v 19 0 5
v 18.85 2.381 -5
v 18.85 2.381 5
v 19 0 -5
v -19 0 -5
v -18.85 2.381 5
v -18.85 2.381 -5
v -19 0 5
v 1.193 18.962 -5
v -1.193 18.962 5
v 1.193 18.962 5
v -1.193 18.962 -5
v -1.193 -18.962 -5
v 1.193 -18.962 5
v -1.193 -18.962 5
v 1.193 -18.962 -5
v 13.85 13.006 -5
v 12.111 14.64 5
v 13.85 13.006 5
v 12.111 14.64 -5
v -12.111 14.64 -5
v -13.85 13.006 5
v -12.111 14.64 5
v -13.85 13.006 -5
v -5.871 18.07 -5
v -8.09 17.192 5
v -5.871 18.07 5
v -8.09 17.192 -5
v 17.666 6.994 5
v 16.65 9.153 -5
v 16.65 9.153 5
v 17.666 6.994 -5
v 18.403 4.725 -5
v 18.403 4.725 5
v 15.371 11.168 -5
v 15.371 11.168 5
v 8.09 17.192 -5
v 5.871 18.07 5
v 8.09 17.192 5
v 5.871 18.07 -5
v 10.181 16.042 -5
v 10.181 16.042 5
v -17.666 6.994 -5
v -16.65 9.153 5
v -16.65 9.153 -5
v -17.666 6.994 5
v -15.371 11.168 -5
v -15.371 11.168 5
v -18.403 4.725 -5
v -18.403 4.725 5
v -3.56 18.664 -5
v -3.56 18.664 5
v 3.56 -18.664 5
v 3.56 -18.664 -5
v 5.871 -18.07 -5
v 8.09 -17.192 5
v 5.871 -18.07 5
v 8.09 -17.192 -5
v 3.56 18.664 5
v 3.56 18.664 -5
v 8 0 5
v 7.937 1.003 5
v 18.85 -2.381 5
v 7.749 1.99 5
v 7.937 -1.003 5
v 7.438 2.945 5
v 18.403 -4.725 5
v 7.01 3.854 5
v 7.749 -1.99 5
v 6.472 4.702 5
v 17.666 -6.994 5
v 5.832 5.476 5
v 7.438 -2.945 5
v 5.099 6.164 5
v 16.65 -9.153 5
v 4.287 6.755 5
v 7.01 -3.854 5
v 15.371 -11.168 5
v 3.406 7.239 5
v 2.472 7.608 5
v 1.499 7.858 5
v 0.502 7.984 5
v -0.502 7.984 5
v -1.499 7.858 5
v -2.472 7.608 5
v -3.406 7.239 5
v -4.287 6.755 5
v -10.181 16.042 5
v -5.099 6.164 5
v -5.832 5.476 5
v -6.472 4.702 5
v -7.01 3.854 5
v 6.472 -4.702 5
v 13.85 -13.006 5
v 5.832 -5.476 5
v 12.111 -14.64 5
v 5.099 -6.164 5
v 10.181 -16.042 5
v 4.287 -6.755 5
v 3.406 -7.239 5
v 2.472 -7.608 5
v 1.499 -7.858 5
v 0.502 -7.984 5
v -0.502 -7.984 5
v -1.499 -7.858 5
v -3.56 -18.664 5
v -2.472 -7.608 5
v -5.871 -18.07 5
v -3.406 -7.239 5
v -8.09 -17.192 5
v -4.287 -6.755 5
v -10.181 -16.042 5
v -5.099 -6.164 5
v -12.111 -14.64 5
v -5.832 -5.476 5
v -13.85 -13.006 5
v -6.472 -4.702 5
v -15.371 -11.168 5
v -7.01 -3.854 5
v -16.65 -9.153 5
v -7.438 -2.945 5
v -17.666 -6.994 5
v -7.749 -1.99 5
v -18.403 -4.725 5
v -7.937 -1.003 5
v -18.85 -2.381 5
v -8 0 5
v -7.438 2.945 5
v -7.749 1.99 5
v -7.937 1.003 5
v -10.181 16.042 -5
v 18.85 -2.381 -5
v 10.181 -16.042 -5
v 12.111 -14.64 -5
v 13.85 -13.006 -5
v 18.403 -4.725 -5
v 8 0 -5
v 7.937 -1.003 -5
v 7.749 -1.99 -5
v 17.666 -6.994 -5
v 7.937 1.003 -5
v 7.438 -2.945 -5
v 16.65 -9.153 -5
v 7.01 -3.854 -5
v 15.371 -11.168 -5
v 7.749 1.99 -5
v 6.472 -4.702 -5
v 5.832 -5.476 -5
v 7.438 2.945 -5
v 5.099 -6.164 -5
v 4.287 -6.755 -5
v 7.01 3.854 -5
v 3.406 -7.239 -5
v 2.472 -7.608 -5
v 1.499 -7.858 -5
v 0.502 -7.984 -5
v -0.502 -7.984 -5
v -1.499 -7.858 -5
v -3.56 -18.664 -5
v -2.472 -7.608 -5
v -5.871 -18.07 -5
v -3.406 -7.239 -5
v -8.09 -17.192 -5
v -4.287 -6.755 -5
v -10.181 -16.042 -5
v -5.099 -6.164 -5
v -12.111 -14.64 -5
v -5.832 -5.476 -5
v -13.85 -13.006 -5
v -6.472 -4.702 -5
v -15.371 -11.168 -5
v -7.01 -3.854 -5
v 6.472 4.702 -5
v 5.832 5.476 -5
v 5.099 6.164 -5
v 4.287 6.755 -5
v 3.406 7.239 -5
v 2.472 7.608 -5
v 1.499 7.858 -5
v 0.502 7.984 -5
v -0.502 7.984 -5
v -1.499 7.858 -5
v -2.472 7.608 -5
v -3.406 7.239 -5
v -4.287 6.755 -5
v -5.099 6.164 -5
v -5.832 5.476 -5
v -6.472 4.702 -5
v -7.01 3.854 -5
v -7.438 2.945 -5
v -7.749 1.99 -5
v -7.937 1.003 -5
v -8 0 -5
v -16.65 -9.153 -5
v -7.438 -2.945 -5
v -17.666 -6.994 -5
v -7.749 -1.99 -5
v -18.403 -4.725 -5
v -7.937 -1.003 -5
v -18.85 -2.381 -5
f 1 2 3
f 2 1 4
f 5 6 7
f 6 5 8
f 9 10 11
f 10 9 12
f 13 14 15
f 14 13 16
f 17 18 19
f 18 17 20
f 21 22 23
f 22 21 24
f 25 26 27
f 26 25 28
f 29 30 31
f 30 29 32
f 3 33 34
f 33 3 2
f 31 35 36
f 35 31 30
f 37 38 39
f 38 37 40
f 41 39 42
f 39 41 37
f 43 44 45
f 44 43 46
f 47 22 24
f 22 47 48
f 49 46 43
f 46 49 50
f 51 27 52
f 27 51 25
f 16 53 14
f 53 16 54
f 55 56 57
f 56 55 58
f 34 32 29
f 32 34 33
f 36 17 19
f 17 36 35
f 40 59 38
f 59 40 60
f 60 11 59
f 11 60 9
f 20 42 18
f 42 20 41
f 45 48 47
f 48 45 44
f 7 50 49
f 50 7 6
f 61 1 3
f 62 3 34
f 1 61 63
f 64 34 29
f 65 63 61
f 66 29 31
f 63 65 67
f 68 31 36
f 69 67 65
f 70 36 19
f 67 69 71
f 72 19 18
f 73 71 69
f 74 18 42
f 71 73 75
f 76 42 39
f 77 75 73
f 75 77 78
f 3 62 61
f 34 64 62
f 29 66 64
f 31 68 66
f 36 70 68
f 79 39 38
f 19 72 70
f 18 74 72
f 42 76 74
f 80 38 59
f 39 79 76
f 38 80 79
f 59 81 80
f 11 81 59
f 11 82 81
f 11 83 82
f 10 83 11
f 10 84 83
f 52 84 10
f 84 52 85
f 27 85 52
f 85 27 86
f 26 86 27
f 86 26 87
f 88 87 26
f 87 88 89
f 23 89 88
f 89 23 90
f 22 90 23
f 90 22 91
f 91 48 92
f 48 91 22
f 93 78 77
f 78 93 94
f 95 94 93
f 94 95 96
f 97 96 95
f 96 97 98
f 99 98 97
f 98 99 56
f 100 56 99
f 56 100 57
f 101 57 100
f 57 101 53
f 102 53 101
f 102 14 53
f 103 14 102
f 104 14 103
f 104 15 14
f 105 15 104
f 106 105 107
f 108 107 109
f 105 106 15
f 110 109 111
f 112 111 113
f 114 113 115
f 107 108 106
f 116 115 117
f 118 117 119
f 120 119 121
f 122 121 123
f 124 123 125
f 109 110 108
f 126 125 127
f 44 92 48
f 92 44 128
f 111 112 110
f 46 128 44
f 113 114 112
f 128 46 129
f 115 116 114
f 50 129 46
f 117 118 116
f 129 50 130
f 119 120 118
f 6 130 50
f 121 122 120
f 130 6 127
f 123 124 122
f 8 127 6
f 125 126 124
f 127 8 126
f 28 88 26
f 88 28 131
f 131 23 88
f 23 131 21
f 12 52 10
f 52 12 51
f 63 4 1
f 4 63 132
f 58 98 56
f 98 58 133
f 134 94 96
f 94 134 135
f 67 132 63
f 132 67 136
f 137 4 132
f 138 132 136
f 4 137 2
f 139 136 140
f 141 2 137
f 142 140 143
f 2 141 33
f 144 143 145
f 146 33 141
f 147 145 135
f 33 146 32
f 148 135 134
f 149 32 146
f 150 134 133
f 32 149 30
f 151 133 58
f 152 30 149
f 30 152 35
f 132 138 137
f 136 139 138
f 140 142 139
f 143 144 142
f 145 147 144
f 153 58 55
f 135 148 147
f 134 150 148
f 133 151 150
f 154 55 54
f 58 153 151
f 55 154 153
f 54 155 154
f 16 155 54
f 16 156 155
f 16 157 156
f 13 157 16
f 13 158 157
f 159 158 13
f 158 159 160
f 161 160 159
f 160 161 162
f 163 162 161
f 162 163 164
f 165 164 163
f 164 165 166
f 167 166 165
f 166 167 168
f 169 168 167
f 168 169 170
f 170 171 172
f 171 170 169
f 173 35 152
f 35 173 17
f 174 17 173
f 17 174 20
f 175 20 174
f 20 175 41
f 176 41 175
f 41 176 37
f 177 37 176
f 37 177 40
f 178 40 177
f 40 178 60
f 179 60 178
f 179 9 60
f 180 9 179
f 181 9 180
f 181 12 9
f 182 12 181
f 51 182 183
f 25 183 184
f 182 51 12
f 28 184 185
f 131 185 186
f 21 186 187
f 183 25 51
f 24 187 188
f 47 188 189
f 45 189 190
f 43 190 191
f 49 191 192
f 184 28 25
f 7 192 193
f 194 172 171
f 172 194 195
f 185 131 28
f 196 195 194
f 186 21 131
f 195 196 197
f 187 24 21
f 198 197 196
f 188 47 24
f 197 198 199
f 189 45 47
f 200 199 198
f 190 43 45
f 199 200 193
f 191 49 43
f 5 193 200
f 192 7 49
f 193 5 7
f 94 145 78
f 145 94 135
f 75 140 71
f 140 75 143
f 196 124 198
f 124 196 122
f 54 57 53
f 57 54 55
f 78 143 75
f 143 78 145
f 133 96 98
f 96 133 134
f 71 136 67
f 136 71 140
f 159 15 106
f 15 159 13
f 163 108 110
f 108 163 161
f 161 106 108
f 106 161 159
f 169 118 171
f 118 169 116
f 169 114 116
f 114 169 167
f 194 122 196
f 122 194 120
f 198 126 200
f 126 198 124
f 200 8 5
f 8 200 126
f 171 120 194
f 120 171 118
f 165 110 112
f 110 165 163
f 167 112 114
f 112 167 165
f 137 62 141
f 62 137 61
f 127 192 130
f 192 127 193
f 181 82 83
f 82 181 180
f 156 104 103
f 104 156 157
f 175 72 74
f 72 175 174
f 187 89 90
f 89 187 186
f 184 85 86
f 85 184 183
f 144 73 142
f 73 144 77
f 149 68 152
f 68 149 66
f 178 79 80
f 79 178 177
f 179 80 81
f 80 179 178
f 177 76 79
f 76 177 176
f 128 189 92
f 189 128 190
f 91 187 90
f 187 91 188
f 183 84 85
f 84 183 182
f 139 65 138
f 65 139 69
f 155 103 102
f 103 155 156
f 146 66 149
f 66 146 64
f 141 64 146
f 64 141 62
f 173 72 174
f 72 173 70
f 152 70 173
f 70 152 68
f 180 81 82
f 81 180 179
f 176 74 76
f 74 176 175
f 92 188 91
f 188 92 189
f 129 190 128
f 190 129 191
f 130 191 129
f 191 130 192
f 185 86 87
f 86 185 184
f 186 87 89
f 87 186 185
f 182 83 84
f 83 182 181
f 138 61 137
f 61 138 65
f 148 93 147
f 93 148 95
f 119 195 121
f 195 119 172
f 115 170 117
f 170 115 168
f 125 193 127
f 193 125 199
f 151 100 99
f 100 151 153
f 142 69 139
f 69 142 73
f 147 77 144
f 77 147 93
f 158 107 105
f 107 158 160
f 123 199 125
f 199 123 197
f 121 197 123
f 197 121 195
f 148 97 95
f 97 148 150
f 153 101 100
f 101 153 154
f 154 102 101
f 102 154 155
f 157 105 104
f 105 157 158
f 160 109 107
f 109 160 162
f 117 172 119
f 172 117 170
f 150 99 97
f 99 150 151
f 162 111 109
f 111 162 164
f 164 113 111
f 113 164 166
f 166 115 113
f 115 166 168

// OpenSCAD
$fn = 50;


difference() {
	union() {
		translate(v = [0, 0, -5.0000000000]) {
			cylinder(h = 10, r = 19.0000000000);
		}
	}
	union() {
		translate(v = [0, 0, -100.0000000000]) {
			cylinder(h = 200, r = 8);
		}
	}
}
